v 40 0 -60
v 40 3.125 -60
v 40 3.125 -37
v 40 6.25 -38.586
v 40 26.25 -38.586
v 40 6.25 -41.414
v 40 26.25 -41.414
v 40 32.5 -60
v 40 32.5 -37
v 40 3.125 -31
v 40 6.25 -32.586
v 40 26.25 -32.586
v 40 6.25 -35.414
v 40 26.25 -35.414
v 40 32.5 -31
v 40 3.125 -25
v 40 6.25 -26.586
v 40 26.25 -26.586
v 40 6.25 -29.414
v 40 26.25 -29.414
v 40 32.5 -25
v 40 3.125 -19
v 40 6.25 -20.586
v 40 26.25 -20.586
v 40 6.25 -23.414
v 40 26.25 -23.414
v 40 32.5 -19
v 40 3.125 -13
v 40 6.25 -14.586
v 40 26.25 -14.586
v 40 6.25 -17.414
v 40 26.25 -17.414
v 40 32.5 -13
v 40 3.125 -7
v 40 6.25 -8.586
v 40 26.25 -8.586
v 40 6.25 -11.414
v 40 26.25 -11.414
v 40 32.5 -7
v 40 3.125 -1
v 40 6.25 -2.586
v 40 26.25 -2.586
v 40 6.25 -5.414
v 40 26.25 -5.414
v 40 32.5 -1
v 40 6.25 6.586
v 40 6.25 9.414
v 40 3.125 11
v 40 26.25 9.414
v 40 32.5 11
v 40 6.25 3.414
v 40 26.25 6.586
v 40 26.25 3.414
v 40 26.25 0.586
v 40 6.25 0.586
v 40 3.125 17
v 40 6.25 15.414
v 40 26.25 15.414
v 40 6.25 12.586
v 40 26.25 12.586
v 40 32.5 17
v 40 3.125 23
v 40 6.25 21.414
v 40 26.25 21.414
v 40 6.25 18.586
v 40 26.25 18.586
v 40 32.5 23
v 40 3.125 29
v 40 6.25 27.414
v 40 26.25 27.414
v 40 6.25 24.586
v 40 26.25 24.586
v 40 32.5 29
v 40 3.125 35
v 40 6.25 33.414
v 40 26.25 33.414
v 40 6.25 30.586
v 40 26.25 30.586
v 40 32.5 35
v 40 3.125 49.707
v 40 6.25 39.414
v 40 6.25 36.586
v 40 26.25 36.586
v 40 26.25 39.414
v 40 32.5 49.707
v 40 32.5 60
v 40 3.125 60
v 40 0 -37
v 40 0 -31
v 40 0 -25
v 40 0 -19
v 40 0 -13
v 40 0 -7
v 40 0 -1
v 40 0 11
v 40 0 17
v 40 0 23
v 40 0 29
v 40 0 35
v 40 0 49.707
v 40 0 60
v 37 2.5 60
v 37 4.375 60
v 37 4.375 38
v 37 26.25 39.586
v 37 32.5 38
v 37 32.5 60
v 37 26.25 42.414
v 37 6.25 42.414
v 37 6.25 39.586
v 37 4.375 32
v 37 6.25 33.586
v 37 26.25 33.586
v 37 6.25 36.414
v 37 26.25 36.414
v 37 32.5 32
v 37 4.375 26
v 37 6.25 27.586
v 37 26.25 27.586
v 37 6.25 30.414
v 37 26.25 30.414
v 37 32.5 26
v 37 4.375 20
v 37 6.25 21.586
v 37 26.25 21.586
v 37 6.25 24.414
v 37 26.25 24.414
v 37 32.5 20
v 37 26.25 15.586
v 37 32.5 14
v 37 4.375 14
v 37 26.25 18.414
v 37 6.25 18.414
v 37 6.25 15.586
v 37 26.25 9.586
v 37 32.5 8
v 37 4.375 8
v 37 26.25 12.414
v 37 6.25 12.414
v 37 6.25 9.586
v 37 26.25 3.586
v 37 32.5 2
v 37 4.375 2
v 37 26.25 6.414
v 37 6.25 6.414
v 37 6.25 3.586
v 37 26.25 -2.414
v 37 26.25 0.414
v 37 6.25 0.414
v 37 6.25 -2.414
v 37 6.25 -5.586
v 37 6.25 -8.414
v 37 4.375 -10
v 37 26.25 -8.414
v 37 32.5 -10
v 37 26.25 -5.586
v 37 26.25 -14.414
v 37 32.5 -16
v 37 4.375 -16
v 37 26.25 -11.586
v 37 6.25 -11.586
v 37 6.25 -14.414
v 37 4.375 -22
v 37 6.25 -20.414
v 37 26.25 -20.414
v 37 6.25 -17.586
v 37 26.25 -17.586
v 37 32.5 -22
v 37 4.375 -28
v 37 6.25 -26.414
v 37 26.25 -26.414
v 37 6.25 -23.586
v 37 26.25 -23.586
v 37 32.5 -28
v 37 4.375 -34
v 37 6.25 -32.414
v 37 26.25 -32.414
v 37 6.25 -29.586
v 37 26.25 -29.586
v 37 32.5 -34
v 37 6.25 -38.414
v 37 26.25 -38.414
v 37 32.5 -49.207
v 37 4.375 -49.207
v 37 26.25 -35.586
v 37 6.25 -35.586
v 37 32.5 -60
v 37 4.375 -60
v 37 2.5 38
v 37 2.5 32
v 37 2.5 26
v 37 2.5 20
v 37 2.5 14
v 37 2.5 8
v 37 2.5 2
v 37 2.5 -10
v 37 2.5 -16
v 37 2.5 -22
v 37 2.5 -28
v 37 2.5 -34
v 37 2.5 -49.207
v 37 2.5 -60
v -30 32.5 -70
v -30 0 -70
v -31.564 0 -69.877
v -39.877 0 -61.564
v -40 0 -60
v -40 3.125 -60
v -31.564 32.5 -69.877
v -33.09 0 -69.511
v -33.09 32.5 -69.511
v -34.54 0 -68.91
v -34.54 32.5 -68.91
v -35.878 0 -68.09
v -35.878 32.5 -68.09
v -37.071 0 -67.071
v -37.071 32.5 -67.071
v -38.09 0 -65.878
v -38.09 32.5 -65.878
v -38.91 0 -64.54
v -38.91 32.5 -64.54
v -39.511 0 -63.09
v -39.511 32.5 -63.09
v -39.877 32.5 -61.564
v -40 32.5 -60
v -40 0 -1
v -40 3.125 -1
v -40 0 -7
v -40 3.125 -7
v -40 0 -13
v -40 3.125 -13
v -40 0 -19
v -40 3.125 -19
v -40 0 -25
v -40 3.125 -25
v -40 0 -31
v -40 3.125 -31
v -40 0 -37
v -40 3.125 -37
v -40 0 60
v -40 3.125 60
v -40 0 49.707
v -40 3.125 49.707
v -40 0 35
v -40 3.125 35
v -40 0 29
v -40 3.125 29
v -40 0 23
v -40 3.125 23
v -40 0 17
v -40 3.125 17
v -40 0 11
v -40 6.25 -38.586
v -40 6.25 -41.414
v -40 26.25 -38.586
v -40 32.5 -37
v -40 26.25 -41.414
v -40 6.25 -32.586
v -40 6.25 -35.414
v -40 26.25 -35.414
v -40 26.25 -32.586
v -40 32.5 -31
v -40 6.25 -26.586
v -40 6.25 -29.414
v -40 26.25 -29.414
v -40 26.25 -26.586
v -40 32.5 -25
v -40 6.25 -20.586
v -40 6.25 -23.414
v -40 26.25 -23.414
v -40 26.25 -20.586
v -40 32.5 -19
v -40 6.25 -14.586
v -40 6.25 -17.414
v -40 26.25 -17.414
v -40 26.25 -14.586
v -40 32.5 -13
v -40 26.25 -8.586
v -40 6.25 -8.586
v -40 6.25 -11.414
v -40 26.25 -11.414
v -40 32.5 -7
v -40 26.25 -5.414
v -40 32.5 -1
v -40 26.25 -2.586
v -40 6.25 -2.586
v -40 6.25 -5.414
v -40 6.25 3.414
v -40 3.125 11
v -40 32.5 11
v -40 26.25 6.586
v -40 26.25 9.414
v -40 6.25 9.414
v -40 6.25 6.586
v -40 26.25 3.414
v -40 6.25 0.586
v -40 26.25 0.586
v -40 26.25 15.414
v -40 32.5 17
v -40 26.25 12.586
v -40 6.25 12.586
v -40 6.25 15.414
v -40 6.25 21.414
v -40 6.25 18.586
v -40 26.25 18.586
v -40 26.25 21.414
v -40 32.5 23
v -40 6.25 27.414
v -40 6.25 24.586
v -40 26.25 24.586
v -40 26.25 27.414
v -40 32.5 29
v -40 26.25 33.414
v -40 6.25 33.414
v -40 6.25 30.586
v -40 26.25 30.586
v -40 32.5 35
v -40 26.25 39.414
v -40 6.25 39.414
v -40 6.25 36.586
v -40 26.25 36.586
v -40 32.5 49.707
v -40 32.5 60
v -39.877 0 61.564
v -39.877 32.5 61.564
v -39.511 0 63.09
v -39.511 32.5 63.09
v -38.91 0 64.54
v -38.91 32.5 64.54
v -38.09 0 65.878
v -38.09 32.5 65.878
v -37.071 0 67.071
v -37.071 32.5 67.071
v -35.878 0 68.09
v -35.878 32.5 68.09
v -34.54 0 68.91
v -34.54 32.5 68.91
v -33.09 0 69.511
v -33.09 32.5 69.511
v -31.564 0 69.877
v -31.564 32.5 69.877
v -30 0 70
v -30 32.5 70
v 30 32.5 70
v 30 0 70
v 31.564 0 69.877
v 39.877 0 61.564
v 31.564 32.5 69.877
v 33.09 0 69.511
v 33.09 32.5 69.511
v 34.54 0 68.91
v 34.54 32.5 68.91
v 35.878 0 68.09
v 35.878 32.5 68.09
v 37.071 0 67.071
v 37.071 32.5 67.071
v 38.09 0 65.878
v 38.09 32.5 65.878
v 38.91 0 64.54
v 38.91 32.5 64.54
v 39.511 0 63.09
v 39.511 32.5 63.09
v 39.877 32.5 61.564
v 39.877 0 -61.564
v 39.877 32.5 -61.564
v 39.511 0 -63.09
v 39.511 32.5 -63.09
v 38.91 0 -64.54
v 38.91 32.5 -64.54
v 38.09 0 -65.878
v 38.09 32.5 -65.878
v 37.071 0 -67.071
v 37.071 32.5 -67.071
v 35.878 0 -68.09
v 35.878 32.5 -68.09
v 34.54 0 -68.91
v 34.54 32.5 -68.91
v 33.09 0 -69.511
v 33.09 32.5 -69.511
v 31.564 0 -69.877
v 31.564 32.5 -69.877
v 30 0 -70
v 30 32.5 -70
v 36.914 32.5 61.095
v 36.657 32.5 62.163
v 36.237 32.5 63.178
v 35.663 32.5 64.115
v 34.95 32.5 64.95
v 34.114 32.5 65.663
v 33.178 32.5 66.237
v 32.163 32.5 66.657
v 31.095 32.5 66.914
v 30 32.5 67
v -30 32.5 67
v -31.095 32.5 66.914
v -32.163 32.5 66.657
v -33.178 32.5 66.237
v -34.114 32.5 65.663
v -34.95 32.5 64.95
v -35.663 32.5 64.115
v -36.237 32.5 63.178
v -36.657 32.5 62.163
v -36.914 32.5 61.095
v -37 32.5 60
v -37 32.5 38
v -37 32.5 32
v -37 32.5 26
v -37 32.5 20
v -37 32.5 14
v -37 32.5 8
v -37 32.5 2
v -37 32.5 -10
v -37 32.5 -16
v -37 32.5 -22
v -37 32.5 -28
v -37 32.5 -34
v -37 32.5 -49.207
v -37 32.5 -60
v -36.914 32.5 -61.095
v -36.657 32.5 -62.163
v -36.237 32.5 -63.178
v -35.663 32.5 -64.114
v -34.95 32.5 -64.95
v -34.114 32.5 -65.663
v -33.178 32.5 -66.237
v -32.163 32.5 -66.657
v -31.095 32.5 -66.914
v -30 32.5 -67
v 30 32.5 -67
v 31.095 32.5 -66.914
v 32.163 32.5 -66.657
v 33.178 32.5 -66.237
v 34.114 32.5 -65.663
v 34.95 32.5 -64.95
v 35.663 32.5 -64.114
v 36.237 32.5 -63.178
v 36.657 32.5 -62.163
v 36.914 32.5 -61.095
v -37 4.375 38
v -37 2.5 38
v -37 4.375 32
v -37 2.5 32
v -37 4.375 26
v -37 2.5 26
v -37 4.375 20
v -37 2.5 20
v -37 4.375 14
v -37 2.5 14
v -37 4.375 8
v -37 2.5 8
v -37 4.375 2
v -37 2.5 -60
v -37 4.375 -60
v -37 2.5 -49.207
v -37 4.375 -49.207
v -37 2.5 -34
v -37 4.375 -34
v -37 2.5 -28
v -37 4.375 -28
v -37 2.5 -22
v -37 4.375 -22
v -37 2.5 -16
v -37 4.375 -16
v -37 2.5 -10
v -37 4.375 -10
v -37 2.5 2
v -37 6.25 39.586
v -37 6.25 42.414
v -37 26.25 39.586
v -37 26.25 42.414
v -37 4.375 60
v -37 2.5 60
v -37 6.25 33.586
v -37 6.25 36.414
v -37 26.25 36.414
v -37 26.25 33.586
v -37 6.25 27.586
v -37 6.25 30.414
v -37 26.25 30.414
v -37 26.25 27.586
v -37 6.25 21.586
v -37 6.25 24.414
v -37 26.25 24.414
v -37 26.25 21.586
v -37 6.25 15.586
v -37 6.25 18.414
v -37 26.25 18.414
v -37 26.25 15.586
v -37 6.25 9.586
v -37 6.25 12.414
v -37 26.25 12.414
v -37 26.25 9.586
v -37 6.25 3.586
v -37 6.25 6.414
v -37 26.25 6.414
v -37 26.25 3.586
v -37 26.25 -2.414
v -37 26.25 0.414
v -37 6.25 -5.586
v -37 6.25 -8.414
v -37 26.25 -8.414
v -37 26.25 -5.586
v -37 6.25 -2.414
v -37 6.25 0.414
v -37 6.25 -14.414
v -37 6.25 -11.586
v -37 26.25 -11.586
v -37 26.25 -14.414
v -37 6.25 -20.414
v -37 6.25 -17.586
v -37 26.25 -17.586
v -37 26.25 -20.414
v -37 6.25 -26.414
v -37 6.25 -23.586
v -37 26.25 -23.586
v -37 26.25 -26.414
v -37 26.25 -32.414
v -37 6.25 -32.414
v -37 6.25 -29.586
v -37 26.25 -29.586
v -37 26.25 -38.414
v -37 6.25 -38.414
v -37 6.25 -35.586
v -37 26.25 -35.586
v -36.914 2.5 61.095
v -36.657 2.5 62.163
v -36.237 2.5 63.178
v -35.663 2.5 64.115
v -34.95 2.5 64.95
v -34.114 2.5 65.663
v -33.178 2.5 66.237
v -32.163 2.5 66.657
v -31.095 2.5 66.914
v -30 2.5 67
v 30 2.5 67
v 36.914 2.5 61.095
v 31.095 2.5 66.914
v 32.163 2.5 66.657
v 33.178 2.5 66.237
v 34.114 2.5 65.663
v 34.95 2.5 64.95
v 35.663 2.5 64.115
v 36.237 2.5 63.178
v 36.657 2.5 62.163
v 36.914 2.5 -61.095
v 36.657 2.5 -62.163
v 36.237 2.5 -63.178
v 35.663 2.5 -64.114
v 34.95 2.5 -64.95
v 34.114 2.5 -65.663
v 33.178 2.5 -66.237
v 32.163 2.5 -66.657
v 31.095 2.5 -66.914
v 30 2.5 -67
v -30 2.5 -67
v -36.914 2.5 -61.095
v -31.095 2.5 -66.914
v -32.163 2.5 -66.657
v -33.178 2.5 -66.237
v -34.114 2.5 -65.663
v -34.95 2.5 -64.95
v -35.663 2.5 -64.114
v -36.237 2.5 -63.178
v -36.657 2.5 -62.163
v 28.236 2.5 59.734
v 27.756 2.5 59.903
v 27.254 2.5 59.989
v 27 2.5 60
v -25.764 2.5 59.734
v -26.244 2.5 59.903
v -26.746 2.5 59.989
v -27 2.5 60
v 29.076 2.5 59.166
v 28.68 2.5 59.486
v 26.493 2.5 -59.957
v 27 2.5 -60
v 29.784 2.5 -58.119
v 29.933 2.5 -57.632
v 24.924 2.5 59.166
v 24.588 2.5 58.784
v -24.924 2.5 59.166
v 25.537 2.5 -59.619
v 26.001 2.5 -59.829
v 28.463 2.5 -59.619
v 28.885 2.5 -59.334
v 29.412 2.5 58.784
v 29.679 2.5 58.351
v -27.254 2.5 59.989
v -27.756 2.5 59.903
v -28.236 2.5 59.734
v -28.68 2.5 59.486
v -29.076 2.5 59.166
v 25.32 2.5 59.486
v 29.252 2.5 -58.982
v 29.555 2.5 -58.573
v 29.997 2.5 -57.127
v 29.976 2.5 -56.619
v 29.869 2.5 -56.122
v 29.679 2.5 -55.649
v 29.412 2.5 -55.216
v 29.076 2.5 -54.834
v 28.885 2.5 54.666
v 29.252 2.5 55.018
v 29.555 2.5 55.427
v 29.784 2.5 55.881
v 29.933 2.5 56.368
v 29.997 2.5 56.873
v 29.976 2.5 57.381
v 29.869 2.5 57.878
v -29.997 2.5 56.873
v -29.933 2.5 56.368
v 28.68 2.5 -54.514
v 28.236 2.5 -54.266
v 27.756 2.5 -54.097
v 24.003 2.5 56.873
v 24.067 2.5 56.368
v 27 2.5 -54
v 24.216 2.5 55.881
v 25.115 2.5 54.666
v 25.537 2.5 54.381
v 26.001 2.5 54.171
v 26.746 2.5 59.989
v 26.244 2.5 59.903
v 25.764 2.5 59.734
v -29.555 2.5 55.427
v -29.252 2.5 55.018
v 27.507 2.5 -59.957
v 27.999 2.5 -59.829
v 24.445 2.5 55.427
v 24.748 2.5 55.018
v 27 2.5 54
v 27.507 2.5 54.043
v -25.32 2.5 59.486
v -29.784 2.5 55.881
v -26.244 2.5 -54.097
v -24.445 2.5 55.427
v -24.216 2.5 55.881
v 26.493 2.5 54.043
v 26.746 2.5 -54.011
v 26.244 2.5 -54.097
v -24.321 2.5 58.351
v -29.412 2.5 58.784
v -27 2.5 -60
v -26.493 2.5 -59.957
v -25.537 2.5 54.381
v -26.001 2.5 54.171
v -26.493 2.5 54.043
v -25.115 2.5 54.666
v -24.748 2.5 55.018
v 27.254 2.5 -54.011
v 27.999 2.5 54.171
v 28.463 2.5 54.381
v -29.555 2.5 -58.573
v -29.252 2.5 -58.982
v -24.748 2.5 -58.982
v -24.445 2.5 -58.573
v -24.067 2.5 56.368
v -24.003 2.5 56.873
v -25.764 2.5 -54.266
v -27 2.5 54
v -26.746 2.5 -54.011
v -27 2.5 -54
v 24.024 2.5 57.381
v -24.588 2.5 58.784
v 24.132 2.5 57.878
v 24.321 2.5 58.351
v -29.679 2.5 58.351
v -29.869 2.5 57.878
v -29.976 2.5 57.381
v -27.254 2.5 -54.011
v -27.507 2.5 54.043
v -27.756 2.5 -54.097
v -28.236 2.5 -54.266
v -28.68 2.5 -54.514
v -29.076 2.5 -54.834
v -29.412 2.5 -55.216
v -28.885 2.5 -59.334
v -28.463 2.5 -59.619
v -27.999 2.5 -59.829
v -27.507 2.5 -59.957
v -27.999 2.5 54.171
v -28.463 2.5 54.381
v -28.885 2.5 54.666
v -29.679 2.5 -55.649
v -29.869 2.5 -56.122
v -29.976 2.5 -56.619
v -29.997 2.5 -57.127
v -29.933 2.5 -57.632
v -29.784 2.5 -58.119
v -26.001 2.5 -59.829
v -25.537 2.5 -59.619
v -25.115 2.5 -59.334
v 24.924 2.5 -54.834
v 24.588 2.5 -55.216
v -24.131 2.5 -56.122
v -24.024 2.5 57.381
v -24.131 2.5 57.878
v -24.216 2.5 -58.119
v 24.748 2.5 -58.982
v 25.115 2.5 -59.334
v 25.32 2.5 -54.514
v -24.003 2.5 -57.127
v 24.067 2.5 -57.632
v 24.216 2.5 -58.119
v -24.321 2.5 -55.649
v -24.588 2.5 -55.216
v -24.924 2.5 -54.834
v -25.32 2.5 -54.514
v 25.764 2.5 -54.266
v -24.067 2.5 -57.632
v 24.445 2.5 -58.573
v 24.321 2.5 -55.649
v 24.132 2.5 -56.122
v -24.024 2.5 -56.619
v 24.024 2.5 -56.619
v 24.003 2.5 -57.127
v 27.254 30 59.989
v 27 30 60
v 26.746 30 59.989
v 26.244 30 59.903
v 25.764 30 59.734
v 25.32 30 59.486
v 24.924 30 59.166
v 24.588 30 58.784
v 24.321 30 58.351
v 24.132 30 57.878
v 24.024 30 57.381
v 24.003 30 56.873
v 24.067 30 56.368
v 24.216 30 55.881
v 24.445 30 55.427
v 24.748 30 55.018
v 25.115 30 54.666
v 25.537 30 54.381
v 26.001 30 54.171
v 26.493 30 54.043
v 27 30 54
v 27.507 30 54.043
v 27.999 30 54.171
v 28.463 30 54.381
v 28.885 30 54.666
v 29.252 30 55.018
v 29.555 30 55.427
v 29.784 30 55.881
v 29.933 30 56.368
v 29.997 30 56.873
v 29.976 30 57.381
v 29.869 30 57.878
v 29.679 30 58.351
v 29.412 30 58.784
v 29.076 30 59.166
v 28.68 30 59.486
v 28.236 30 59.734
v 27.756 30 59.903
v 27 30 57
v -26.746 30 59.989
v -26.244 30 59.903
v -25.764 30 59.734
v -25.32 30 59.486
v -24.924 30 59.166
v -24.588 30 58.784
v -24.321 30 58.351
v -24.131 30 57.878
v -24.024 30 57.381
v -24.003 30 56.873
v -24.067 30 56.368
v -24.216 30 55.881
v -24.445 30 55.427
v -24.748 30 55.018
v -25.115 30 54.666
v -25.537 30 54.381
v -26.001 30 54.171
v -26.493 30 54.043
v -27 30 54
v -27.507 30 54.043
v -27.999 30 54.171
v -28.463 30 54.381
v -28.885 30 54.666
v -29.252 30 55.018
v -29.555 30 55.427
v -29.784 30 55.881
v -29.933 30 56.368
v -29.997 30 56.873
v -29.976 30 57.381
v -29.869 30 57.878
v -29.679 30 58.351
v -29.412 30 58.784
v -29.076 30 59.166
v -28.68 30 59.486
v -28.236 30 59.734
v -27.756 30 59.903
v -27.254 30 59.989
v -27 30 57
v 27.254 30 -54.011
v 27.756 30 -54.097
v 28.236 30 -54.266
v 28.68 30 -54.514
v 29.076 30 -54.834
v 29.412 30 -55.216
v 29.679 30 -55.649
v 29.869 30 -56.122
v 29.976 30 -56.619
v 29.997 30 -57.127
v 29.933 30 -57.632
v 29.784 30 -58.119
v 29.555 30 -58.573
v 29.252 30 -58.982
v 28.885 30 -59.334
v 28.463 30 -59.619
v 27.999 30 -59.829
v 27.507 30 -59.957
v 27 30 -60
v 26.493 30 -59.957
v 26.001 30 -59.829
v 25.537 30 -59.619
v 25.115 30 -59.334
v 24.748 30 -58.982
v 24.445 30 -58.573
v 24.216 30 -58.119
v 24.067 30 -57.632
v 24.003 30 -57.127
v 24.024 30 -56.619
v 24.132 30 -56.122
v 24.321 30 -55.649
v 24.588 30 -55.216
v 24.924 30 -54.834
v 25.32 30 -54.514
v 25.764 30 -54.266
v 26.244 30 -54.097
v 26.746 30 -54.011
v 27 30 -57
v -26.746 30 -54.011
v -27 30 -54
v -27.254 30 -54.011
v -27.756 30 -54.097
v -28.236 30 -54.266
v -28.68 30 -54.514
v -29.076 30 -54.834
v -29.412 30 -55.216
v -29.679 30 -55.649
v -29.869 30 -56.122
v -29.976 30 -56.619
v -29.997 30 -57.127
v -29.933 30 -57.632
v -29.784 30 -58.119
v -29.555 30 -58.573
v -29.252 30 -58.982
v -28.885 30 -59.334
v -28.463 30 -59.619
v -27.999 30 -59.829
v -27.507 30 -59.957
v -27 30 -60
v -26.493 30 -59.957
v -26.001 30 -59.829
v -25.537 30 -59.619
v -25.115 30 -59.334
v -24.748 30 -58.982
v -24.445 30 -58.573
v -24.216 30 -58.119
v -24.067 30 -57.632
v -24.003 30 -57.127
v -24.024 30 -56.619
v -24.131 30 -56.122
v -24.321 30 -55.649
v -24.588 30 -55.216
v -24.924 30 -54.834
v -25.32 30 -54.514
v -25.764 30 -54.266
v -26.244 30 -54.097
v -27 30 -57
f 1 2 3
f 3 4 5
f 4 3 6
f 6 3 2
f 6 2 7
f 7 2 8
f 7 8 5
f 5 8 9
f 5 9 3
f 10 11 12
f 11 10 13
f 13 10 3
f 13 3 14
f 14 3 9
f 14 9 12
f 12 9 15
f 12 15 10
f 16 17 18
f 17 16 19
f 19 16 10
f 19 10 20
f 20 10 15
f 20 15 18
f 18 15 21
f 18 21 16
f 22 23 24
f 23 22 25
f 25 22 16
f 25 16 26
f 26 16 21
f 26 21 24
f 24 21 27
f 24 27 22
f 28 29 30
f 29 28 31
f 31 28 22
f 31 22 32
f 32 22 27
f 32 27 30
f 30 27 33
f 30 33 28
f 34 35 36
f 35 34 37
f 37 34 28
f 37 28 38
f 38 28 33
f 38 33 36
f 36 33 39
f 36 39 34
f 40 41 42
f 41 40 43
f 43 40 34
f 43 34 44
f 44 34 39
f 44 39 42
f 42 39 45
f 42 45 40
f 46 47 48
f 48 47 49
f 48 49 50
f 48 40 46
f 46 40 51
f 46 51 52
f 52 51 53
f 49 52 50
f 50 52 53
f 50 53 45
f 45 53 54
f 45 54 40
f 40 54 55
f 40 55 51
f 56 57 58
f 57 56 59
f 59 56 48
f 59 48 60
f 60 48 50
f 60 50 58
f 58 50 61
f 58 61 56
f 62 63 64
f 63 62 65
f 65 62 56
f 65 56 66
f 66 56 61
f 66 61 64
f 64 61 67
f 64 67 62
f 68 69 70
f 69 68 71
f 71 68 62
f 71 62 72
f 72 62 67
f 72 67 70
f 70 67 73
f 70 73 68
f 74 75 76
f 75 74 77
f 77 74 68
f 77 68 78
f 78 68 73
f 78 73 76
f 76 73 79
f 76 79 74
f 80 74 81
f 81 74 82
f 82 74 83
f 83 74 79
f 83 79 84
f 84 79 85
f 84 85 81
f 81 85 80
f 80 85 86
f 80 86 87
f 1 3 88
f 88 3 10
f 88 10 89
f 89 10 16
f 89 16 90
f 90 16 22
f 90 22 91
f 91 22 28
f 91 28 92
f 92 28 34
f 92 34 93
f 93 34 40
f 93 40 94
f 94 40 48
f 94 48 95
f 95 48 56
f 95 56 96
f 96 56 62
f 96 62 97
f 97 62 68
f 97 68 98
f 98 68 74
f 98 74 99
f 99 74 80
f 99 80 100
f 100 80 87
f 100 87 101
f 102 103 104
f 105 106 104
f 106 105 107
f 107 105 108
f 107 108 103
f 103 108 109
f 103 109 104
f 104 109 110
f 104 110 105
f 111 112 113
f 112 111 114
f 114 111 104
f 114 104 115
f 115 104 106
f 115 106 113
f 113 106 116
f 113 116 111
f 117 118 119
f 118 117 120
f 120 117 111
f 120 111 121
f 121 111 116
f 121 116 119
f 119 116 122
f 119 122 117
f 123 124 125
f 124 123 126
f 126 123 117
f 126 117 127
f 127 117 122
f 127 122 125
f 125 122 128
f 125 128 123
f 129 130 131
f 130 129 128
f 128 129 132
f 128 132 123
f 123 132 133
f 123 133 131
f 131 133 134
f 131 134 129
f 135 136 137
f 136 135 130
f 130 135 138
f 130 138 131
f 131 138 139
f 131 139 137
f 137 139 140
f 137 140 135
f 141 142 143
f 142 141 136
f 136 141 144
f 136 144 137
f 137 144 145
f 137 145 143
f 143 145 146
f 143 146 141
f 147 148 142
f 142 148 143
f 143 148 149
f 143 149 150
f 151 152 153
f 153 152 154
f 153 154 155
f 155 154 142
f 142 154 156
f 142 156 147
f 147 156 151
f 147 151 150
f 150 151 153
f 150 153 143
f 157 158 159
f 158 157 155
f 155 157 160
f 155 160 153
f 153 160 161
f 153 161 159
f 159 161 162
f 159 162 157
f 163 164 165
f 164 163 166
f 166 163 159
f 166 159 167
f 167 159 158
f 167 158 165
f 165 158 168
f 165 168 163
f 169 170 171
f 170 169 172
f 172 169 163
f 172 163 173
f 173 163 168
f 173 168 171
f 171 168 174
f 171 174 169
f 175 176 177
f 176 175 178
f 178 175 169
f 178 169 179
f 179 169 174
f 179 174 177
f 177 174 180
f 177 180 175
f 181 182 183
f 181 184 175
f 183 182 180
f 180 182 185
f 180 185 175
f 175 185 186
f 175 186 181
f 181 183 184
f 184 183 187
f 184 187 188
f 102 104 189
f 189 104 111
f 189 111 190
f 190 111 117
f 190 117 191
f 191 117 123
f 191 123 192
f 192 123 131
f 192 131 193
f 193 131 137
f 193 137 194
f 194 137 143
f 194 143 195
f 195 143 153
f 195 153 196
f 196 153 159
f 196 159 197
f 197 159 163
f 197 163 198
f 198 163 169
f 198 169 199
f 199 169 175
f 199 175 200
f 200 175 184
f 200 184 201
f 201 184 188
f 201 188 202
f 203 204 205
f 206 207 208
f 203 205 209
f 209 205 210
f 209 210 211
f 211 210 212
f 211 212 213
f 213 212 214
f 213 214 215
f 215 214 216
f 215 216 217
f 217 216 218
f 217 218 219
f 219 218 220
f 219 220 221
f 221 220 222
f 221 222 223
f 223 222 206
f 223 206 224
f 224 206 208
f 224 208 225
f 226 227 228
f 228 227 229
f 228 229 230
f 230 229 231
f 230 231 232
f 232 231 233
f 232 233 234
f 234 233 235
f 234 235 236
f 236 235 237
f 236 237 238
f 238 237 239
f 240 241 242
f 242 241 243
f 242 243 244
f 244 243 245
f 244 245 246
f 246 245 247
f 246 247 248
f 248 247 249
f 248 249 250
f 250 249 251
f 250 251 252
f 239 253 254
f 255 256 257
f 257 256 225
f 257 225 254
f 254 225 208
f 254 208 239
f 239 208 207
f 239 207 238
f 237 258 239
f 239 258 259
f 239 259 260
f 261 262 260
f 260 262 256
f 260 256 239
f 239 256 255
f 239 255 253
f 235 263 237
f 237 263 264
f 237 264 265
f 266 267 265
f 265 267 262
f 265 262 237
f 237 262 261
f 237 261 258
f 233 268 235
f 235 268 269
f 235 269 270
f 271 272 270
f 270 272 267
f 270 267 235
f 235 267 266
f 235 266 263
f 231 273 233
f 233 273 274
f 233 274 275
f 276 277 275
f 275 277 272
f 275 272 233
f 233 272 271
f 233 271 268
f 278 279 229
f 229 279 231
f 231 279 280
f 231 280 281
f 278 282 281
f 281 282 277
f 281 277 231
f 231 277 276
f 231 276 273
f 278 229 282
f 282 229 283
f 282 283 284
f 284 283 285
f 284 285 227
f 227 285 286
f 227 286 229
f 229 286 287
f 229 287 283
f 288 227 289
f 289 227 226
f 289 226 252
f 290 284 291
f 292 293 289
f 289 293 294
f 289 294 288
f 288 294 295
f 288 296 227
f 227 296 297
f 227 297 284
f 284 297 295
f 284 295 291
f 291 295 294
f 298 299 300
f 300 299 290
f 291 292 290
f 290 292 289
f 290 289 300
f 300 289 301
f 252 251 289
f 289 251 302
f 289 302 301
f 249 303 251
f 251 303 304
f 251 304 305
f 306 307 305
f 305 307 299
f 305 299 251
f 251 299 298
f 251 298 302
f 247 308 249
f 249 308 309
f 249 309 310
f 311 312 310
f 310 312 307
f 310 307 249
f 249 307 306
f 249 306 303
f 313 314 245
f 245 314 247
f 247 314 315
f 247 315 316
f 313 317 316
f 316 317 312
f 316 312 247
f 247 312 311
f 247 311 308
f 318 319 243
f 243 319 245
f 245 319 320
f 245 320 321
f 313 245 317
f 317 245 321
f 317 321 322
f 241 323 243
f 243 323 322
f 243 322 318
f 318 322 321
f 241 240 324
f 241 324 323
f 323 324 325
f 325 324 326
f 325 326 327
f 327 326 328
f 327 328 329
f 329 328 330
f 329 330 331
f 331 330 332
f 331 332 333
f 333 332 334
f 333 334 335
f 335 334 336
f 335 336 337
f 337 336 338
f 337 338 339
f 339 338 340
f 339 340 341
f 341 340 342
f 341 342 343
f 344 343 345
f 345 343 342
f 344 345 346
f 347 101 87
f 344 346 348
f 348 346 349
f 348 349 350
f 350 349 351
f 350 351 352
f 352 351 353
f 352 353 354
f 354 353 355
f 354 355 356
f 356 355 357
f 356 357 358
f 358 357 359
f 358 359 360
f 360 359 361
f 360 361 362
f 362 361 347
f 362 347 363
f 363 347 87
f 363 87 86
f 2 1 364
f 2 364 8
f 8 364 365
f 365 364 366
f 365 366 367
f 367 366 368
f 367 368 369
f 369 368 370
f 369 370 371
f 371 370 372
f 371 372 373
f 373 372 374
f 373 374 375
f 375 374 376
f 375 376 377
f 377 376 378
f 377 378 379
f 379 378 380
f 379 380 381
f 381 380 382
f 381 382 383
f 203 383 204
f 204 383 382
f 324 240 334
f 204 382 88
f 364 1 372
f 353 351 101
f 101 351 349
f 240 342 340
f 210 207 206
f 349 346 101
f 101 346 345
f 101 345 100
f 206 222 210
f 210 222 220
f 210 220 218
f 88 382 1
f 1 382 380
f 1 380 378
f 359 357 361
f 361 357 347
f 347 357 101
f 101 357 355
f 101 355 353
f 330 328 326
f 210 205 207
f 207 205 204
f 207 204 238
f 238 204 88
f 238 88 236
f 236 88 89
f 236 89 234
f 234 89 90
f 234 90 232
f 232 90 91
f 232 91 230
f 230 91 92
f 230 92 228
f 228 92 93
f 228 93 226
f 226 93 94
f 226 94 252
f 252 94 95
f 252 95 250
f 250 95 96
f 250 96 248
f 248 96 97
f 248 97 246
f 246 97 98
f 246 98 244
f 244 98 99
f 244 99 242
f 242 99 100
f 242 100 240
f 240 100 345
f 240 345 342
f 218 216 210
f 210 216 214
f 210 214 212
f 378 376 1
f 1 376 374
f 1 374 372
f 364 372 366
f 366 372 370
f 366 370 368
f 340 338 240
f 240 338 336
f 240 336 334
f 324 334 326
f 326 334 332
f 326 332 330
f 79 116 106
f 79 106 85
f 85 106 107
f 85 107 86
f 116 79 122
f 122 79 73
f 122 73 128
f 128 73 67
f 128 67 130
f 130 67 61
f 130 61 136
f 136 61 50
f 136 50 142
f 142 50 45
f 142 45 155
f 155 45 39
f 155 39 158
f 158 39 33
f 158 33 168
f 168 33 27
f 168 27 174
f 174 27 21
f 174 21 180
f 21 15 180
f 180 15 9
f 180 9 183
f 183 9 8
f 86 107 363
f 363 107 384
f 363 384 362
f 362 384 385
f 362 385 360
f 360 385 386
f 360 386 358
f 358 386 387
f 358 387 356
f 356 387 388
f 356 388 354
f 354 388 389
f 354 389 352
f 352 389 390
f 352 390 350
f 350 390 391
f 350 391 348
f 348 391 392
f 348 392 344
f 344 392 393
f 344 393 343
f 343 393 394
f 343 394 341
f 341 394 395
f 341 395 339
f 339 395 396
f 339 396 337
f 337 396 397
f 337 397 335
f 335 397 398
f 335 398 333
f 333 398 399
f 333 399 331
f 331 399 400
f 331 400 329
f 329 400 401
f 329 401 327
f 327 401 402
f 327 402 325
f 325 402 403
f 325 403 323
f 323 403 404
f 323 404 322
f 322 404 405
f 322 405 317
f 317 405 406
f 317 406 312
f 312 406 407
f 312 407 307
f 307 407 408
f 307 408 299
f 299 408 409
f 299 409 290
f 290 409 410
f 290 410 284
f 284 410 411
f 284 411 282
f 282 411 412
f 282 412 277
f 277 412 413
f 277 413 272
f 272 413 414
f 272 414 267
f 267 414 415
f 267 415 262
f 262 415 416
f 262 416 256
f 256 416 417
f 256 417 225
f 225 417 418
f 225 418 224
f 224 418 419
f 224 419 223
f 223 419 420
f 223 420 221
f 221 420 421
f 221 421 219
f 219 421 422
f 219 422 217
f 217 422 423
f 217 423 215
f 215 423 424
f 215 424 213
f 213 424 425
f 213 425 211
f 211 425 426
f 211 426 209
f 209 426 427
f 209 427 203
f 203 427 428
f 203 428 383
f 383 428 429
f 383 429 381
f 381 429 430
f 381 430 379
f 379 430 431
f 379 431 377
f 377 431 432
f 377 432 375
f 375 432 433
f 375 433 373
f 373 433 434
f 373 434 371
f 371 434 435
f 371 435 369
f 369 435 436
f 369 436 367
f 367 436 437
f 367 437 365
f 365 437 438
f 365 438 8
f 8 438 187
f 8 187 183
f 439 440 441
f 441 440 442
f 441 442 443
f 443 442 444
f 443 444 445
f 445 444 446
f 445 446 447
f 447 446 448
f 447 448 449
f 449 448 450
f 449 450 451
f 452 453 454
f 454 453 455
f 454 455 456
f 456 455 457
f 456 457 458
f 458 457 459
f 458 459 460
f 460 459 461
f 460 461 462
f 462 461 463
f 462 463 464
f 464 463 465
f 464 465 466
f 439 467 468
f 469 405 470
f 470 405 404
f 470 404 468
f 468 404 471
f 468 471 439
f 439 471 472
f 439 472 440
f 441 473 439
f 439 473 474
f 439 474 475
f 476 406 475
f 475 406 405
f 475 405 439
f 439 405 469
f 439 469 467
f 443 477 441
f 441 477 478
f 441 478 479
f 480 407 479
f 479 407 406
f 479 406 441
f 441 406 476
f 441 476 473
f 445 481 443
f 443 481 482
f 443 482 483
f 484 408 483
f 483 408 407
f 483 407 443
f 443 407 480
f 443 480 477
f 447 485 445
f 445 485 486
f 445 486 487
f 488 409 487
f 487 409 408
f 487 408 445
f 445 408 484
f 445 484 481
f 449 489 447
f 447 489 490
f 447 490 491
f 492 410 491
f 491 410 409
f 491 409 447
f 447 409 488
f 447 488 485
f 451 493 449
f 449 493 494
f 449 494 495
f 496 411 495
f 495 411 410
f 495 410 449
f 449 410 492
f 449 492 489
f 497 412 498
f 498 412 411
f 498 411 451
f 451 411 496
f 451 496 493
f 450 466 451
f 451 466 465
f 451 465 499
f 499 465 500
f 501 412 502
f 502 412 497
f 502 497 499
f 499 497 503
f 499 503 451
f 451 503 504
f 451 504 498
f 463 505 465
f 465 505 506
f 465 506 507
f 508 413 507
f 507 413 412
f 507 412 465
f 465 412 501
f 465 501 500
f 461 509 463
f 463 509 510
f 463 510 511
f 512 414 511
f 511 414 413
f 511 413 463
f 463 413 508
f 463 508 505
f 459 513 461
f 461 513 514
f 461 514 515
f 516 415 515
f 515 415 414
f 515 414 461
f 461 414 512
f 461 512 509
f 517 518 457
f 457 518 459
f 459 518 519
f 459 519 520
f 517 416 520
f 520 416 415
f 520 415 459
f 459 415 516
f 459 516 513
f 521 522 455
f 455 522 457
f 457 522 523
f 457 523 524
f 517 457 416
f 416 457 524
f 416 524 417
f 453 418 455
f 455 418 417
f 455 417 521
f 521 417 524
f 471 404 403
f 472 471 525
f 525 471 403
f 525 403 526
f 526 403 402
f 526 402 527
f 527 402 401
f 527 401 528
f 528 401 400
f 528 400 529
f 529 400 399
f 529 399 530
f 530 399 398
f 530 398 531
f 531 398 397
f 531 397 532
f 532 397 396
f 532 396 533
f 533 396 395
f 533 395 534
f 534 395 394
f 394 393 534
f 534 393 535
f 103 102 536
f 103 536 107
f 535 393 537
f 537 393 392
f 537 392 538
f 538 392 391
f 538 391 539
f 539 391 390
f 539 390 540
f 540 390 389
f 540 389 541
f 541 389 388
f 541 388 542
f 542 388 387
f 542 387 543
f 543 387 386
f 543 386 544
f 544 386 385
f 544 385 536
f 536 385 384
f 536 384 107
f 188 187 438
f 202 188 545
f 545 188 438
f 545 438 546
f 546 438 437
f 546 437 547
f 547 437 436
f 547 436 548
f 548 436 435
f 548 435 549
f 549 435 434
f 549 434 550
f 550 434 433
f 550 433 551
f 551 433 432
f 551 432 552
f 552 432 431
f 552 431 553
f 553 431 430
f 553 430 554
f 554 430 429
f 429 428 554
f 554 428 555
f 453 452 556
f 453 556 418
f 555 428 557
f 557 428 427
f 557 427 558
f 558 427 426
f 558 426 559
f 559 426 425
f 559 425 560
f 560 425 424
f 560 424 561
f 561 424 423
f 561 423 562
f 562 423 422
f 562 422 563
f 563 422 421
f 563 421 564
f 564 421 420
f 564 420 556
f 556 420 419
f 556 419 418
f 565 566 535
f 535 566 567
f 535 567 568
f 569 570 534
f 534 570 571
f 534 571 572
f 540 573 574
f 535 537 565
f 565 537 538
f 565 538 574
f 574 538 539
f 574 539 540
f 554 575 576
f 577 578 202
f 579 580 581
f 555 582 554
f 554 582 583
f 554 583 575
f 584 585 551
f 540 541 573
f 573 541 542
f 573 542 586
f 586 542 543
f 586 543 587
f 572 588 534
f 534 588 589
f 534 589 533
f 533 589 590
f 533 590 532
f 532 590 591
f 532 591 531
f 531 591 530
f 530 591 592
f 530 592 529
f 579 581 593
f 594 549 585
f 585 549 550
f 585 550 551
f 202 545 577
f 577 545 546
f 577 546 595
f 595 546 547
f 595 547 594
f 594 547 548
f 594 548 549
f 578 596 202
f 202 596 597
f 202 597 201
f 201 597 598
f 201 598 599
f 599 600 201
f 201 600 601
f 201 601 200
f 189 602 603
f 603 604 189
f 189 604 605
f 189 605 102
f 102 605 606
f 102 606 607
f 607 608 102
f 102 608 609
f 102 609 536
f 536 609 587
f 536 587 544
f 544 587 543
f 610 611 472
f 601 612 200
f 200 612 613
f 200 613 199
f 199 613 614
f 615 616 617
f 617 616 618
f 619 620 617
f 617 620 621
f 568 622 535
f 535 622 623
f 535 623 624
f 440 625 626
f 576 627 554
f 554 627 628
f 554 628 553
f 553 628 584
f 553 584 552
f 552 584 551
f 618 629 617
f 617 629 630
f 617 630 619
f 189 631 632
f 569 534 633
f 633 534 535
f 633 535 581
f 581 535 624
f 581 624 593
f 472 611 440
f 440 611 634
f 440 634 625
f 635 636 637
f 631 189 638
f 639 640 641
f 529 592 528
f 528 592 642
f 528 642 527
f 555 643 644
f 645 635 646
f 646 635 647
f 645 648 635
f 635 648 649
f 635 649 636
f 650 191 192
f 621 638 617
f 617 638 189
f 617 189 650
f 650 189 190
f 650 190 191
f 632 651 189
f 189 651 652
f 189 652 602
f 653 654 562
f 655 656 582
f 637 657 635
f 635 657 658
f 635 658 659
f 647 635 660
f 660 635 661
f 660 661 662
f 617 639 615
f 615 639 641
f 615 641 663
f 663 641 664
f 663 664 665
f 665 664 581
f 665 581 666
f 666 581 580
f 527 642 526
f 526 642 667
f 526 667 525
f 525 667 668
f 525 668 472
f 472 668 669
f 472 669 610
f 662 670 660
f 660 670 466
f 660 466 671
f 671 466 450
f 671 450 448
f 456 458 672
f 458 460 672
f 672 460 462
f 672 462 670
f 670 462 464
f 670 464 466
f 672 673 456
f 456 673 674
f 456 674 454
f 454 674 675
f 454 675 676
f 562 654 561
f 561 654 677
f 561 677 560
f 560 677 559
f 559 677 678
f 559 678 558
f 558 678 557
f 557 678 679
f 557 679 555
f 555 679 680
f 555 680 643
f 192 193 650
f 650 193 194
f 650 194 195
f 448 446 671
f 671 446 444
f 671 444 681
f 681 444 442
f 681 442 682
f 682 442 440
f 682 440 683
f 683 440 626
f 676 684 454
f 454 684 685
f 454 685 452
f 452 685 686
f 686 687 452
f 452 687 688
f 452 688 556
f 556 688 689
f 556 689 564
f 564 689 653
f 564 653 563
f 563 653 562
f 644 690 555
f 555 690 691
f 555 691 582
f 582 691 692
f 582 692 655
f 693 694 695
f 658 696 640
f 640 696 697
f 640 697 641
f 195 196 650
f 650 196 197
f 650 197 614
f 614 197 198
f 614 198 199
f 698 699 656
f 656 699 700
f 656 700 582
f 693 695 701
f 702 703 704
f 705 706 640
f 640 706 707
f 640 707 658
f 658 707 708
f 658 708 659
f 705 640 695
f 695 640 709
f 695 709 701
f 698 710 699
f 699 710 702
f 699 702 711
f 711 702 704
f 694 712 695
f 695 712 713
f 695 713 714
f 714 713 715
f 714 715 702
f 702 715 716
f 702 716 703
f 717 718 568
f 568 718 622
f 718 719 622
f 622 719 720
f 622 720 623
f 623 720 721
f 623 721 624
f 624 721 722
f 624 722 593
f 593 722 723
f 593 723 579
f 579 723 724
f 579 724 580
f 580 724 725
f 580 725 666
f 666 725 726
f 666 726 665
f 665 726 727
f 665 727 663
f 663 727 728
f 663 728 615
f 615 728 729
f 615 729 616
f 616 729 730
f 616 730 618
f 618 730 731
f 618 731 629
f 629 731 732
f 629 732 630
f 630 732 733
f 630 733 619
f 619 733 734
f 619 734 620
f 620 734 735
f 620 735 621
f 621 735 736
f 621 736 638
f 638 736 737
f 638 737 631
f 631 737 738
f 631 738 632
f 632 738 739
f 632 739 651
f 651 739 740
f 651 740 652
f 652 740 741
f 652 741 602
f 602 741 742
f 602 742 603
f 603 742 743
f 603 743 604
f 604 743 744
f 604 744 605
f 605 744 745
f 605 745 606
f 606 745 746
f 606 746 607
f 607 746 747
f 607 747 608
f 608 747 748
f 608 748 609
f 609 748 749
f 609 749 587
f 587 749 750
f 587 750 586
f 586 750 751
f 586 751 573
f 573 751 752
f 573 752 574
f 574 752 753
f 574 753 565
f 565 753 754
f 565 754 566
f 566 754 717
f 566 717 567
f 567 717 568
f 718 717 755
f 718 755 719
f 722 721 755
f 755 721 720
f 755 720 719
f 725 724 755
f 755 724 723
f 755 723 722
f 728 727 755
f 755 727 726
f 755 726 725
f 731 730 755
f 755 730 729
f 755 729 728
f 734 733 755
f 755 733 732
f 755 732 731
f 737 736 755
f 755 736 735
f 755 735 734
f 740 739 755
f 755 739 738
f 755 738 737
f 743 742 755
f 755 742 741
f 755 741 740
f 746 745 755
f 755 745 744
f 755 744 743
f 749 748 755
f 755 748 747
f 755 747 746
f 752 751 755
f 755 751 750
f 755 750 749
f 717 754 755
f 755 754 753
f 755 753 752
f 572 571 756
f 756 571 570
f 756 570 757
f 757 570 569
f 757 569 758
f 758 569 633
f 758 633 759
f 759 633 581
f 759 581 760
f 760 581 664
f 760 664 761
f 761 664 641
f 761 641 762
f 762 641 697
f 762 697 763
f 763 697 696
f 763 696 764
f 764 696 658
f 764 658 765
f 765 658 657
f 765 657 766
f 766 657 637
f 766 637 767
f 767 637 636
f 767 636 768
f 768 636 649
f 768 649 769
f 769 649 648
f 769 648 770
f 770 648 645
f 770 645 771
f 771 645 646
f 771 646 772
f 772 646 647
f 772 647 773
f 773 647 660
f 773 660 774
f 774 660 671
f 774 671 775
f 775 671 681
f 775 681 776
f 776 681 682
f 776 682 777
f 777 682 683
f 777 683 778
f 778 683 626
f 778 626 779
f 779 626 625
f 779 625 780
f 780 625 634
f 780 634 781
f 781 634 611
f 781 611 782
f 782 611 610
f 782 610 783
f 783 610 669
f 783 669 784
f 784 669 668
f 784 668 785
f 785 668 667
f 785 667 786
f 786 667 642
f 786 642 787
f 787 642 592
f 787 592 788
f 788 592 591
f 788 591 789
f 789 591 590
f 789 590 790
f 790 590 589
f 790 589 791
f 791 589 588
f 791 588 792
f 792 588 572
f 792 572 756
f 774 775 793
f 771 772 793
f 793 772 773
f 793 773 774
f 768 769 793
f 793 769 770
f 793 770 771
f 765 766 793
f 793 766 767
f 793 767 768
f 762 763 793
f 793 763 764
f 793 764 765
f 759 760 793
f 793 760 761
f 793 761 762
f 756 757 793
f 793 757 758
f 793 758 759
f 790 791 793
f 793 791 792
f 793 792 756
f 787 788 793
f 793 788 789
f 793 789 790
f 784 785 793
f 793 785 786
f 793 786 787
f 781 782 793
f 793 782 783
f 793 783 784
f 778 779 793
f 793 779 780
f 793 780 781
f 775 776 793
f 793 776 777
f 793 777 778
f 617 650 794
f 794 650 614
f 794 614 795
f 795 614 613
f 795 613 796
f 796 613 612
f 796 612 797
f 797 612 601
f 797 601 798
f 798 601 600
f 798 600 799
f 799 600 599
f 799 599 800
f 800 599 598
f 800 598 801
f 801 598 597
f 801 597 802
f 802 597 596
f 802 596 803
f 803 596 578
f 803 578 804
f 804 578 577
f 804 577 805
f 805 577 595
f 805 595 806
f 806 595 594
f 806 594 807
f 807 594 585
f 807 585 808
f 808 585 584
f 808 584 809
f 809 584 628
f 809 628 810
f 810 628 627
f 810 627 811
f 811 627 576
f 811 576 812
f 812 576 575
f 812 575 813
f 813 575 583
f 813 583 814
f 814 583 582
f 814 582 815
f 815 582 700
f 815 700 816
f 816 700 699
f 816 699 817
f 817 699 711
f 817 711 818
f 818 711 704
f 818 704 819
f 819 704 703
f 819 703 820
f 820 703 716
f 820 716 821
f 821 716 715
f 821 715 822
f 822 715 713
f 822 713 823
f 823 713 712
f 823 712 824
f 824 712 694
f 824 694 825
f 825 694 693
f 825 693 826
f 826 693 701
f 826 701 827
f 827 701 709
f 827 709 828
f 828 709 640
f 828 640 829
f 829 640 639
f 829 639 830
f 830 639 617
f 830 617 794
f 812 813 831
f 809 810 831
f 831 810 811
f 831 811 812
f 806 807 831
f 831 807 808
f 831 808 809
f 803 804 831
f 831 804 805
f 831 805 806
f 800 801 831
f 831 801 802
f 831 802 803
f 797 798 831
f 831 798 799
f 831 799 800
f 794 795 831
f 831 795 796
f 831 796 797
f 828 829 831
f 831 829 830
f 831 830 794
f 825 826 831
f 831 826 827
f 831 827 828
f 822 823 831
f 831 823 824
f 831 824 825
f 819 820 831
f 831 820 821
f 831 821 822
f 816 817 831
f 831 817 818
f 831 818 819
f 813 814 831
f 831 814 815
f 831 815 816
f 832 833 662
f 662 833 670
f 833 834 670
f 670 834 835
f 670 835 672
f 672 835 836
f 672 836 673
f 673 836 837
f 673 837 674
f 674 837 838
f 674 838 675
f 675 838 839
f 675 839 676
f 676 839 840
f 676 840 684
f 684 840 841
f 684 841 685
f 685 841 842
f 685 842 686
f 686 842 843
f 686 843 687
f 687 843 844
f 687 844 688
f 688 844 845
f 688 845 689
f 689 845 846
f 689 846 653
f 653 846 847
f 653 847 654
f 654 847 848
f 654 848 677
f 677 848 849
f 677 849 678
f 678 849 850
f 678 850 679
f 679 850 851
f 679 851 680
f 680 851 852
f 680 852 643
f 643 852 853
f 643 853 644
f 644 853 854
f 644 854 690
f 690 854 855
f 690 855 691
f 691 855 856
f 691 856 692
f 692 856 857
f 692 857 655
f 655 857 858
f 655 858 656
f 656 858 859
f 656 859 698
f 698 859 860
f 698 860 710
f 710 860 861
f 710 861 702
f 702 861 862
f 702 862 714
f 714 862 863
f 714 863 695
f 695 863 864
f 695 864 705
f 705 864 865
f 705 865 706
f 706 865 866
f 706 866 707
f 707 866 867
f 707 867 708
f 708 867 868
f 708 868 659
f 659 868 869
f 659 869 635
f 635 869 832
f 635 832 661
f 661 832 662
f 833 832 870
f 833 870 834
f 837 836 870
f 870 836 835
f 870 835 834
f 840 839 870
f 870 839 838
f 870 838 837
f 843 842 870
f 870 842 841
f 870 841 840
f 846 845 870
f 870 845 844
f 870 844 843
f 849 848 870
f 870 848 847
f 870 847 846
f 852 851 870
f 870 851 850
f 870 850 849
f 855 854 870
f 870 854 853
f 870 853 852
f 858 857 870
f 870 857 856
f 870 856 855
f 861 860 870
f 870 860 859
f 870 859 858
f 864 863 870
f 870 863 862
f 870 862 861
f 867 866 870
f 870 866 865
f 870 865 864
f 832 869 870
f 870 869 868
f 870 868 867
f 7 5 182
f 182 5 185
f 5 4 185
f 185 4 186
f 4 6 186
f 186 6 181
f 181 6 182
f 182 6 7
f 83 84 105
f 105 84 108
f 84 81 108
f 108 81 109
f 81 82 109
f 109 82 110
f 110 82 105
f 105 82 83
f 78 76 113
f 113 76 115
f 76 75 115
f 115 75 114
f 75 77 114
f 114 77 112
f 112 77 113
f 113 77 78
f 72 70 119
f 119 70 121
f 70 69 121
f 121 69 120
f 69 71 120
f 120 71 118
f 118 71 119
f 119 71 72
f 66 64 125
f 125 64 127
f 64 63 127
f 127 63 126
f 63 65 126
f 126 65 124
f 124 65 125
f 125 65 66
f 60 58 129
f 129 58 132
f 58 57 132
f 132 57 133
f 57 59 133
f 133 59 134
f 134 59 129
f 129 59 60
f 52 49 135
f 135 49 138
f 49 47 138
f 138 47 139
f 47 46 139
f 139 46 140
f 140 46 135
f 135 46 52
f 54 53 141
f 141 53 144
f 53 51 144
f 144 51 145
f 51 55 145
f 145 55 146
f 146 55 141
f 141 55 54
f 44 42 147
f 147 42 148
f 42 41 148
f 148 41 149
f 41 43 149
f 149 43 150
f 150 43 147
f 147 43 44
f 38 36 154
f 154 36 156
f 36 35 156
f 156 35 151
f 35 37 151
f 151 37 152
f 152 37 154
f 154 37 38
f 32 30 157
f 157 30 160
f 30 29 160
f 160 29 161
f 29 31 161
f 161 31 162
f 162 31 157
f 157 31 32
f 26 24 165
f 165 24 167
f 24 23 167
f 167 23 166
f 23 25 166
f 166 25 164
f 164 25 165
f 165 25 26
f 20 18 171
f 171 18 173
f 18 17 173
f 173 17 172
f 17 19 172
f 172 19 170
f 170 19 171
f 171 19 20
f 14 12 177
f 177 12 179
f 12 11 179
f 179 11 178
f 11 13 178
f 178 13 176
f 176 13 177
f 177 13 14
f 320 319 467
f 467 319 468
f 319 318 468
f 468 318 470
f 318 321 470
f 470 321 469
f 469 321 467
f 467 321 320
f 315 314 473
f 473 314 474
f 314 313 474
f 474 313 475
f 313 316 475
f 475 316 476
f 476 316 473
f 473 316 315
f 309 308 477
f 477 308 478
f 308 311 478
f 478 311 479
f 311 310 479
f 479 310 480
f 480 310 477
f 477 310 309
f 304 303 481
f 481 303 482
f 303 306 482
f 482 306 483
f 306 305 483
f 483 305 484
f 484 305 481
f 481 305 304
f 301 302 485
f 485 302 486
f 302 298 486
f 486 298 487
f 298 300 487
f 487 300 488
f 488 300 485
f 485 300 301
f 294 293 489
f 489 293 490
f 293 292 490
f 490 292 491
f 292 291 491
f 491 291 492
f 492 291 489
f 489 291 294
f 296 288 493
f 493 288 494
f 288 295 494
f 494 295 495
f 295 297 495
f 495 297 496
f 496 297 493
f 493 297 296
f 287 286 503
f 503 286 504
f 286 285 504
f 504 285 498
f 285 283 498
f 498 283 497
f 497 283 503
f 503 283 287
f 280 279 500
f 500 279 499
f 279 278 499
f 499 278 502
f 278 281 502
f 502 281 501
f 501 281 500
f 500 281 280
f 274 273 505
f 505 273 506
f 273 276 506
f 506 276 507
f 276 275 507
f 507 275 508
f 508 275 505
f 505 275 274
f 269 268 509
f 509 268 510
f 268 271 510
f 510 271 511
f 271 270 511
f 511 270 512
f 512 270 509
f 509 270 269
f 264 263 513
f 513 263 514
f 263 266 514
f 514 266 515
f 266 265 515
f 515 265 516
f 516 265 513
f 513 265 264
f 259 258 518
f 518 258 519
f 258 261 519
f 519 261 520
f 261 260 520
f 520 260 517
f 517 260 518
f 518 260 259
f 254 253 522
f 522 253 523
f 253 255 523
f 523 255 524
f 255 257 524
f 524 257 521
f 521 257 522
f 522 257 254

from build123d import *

# Parameters (mm, degrees)
BOSS_EXTRUDE1_DEPTH            = 2.5
BOSS_EXTRUDE2_START            = 2.5
BOSS_EXTRUDE2_DEPTH            = 30
SKETCH1_5_R                    = 3
BOSS_EXTRUDE4_DEPTH            = 30
CUT_EXTRUDE3_REACH             = 134.823
SKETCH8_W                      = 2
SKETCH8_H                      = 20
CUT_EXTRUDE3_DIRECTION_2_REACH = 134.823
LPATTERN1_START                = 6.25
LPATTERN1_DEPTH                = 20


# Read off the part's stored shape, not the designer's step: LPattern1
with BuildPart() as part:
    # Sketch1 → Boss-Extrude1 (new body)
    with BuildSketch(Plane(origin=(0, 0, 0), x_dir=(1, 0, 0), z_dir=(0, 1, 0))):
        with BuildLine():
            Line((-30, 70), (30, 70))
            ThreePointArc((30, 70), (37.071067812, 67.071067812), (40, 60))
            Line((40, 60), (40, -60))
            ThreePointArc((40, -60), (37.071067812, -67.071067812), (30, -70))
            Line((30, -70), (-30, -70))
            ThreePointArc((-30, -70), (-37.071067812, -67.071067812), (-40, -60))
            Line((-40, -60), (-40, 60))
            ThreePointArc((-40, 60), (-37.071067812, 67.071067812), (-30, 70))
        make_face()
    extrude(amount=BOSS_EXTRUDE1_DEPTH)

    # Sketch1<3> → Boss-Extrude2 (add)
    with BuildSketch(Plane(origin=(0, 0, 0), x_dir=(1, 0, 0), z_dir=(0, 1, 0)).offset(BOSS_EXTRUDE2_START)):
        with BuildLine():
            Line((-30, 70), (30, 70))
            ThreePointArc((30, 70), (37.071067812, 67.071067812), (40, 60))
            Line((40, 60), (40, -60))
            ThreePointArc((40, -60), (37.071067812, -67.071067812), (30, -70))
            Line((30, -70), (-30, -70))
            ThreePointArc((-30, -70), (-37.071067812, -67.071067812), (-40, -60))
            Line((-40, -60), (-40, 60))
            ThreePointArc((-40, 60), (-37.071067812, 67.071067812), (-30, 70))
        make_face()
        with BuildLine():
            Line((-37, 60), (-37, -60))
            ThreePointArc((-37, -60), (-34.949747468, -64.949747468), (-30, -67))
            Line((-30, -67), (30, -67))
            ThreePointArc((30, -67), (34.949747468, -64.949747468), (37, -60))
            Line((37, -60), (37, 60))
            ThreePointArc((37, 60), (34.949747468, 64.949747468), (30, 67))
            Line((30, 67), (-30, 67))
            ThreePointArc((-30, 67), (-34.949747468, 64.949747468), (-37, 60))
        make_face(mode=Mode.SUBTRACT)
    extrude(amount=BOSS_EXTRUDE2_DEPTH)

    # Sketch1<5> → Boss-Extrude4 (add)
    with BuildSketch(Plane(origin=(0, 0, 0), x_dir=(1, 0, 0), z_dir=(0, 1, 0))):
        with Locations(Location((27, -57, 0), (0, 0, 270))):
            Circle(SKETCH1_5_R)
        with Locations(Location((-27, -57, 0), (0, 0, 90))):
            Circle(SKETCH1_5_R)
        with Locations(Location((-27, 57, 0), (0, 0, 270))):
            Circle(SKETCH1_5_R)
        with Locations(Location((27, 57, 0), (0, 0, 90))):
            Circle(SKETCH1_5_R)
    extrude(amount=BOSS_EXTRUDE4_DEPTH)

    # Sketch8 → Cut-Extrude3 (cut, up to next)
    with BuildSketch(Plane(origin=(37, 16.25, -37), x_dir=(0.7071067811865538, 0, 0.7071067811865412), z_dir=(-0.7071067811865412, 0, 0.7071067811865538)), mode=Mode.PRIVATE) as cut_extrude3_sk1:
        Rectangle(SKETCH8_W, SKETCH8_H)
    cut_extrude3_tool1 = extrude(cut_extrude3_sk1.sketch, amount=-CUT_EXTRUDE3_REACH, mode=Mode.PRIVATE) & part.part
    cut_extrude3 = cut_extrude3_tool1.solids().sort_by_distance((37, 16.25, -37))[0]
    add(cut_extrude3, mode=Mode.SUBTRACT)

    # Sketch8 → Cut-Extrude3 direction 2 (cut, up to next)
    with BuildSketch(Plane(origin=(37, 16.25, -37), x_dir=(0.7071067811865538, 0, 0.7071067811865412), z_dir=(-0.7071067811865412, 0, 0.7071067811865538)), mode=Mode.PRIVATE) as cut_extrude3_direction_2_sk1:
        Rectangle(SKETCH8_W, SKETCH8_H)
    cut_extrude3_direction_2_tool1 = extrude(cut_extrude3_direction_2_sk1.sketch, amount=CUT_EXTRUDE3_DIRECTION_2_REACH, mode=Mode.PRIVATE) & part.part
    cut_extrude3_direction_2 = cut_extrude3_direction_2_tool1.solids().sort_by_distance((37, 16.25, -37))[0]
    add(cut_extrude3_direction_2, mode=Mode.SUBTRACT)

    # LPattern1 outline → LPattern1 (cut)
    with BuildSketch(Plane(origin=(0, 0, 0), x_dir=(1, 0, 0), z_dir=(0, 1, 0)).offset(LPATTERN1_START)):
        Polygon((37, -42.414213562), (40, -39.414213562), (40, -36.585786438), (37, -39.585786438), align=None)
        Polygon((37, -36.414213562), (40, -33.414213562), (40, -30.585786438), (37, -33.585786438), align=None)
        Polygon((37, -30.414213562), (40, -27.414213562), (40, -24.585786438), (37, -27.585786438), align=None)
        Polygon((37, -24.414213562), (40, -21.414213562), (40, -18.585786438), (37, -21.585786438), align=None)
        Polygon((37, -18.414213562), (40, -15.414213562), (40, -12.585786438), (37, -15.585786438), align=None)
        Polygon((37, -12.414213562), (40, -9.414213562), (40, -6.585786438), (37, -9.585786438), align=None)
        Polygon((37, -6.414213562), (40, -3.414213562), (40, -0.585786438), (37, -3.585786438), align=None)
        Polygon((37, -0.414213562), (40, 2.585786438), (40, 5.414213562), (37, 2.414213562), align=None)
        Polygon((37, 5.585786438), (40, 8.585786438), (40, 11.414213562), (37, 8.414213562), align=None)
        Polygon((37, 11.585786438), (40, 14.585786438), (40, 17.414213562), (37, 14.414213562), align=None)
        Polygon((37, 17.585786438), (40, 20.585786438), (40, 23.414213562), (37, 20.414213562), align=None)
        Polygon((37, 23.585786438), (40, 26.585786438), (40, 29.414213562), (37, 26.414213562), align=None)
        Polygon((37, 29.585786438), (40, 32.585786438), (40, 35.414213562), (37, 32.414213562), align=None)
    lpattern1 = extrude(amount=LPATTERN1_DEPTH, mode=Mode.SUBTRACT)

    # Mirror2: Cut-Extrude3, Cut-Extrude3 direction 2, LPattern1 across plane
    add(cut_extrude3.mirror(Plane(origin=(0, 0, 0), x_dir=(0, 0, 1), z_dir=(1, 0, 0))), mode=Mode.SUBTRACT)
    add(cut_extrude3_direction_2.mirror(Plane(origin=(0, 0, 0), x_dir=(0, 0, 1), z_dir=(1, 0, 0))), mode=Mode.SUBTRACT)
    add(lpattern1.mirror(Plane(origin=(0, 0, 0), x_dir=(0, 0, 1), z_dir=(1, 0, 0))), mode=Mode.SUBTRACT)


solid = part.part
